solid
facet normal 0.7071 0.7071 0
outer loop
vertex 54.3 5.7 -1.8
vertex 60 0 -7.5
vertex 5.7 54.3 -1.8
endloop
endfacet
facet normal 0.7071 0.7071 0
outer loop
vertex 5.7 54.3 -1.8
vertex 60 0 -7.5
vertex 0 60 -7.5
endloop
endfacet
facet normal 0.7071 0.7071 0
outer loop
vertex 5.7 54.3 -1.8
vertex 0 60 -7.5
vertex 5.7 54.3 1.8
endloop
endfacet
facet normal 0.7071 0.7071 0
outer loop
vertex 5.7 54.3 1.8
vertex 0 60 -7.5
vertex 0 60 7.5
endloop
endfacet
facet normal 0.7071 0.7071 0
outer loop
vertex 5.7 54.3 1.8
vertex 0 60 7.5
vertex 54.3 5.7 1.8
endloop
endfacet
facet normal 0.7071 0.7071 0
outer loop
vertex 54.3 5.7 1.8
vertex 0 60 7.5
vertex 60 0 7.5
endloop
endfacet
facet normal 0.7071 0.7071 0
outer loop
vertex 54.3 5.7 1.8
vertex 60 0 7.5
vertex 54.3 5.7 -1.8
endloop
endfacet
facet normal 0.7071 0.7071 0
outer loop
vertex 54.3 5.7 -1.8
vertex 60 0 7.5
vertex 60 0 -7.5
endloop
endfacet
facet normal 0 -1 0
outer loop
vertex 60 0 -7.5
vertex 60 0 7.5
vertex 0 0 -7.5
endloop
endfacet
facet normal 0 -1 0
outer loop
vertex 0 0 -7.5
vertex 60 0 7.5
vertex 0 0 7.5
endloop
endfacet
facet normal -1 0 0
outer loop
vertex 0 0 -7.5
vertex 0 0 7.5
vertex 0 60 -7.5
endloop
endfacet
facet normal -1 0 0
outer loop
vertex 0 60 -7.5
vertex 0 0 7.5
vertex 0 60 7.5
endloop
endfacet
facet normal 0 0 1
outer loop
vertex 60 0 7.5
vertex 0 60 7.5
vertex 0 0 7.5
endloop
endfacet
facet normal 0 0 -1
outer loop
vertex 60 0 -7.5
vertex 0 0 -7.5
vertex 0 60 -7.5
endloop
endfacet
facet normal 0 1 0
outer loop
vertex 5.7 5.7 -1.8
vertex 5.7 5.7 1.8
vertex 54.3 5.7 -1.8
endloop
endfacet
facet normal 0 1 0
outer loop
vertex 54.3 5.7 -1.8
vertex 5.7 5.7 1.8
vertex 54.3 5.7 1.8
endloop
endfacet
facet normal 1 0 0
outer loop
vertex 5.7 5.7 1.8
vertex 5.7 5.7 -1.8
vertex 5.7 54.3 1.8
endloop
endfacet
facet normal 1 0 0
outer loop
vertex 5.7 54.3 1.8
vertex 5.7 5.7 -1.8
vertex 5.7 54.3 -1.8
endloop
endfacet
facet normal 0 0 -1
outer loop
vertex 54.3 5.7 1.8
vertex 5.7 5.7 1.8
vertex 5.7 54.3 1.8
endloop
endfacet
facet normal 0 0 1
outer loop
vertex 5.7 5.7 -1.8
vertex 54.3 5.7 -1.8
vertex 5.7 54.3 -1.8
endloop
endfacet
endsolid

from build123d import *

# Parameters (mm, degrees)
BOSS_EXTRU_1_DEPTH           = 7.5
BOSS_EXTRU_2_DEPTH           = 7.5
ENL_V_MAT_EXTRU_1_DEPTH      = 1.8
ENL_V_MAT_EXTRU_1_DEPTH_BACK = 1.8


with BuildPart() as part:
    # Esquisse1 → Boss.-Extru.1 (new body)
    with BuildSketch(Plane.XY):
        Polygon((0, 0), (0, 60), (60, 0), align=None)
    extrude(amount=BOSS_EXTRU_1_DEPTH)

    # Esquisse4 → Boss.-Extru.2 (add)
    with BuildSketch(Plane(origin=(0, 0, 0), x_dir=(-1, 0, 0), z_dir=(0, 0, -1))):
        Polygon((-60, 0), (0, 0), (0, 60), align=None)
    extrude(amount=BOSS_EXTRU_2_DEPTH)

    # Esquisse5 → Enlèv. mat.-Extru.1 (cut, two sides: drawn at the far end of the back side and taken through both)
    with BuildSketch(Plane.XY.offset(-ENL_V_MAT_EXTRU_1_DEPTH_BACK)):
        Polygon((19.799886626, 5.7), (65.41074544, 5.7), (5.7, 61.280925076), (5.7, 19.989141186), (5.7, 5.7), align=None)
    extrude(amount=ENL_V_MAT_EXTRU_1_DEPTH + ENL_V_MAT_EXTRU_1_DEPTH_BACK, mode=Mode.SUBTRACT)


solid = part.part
